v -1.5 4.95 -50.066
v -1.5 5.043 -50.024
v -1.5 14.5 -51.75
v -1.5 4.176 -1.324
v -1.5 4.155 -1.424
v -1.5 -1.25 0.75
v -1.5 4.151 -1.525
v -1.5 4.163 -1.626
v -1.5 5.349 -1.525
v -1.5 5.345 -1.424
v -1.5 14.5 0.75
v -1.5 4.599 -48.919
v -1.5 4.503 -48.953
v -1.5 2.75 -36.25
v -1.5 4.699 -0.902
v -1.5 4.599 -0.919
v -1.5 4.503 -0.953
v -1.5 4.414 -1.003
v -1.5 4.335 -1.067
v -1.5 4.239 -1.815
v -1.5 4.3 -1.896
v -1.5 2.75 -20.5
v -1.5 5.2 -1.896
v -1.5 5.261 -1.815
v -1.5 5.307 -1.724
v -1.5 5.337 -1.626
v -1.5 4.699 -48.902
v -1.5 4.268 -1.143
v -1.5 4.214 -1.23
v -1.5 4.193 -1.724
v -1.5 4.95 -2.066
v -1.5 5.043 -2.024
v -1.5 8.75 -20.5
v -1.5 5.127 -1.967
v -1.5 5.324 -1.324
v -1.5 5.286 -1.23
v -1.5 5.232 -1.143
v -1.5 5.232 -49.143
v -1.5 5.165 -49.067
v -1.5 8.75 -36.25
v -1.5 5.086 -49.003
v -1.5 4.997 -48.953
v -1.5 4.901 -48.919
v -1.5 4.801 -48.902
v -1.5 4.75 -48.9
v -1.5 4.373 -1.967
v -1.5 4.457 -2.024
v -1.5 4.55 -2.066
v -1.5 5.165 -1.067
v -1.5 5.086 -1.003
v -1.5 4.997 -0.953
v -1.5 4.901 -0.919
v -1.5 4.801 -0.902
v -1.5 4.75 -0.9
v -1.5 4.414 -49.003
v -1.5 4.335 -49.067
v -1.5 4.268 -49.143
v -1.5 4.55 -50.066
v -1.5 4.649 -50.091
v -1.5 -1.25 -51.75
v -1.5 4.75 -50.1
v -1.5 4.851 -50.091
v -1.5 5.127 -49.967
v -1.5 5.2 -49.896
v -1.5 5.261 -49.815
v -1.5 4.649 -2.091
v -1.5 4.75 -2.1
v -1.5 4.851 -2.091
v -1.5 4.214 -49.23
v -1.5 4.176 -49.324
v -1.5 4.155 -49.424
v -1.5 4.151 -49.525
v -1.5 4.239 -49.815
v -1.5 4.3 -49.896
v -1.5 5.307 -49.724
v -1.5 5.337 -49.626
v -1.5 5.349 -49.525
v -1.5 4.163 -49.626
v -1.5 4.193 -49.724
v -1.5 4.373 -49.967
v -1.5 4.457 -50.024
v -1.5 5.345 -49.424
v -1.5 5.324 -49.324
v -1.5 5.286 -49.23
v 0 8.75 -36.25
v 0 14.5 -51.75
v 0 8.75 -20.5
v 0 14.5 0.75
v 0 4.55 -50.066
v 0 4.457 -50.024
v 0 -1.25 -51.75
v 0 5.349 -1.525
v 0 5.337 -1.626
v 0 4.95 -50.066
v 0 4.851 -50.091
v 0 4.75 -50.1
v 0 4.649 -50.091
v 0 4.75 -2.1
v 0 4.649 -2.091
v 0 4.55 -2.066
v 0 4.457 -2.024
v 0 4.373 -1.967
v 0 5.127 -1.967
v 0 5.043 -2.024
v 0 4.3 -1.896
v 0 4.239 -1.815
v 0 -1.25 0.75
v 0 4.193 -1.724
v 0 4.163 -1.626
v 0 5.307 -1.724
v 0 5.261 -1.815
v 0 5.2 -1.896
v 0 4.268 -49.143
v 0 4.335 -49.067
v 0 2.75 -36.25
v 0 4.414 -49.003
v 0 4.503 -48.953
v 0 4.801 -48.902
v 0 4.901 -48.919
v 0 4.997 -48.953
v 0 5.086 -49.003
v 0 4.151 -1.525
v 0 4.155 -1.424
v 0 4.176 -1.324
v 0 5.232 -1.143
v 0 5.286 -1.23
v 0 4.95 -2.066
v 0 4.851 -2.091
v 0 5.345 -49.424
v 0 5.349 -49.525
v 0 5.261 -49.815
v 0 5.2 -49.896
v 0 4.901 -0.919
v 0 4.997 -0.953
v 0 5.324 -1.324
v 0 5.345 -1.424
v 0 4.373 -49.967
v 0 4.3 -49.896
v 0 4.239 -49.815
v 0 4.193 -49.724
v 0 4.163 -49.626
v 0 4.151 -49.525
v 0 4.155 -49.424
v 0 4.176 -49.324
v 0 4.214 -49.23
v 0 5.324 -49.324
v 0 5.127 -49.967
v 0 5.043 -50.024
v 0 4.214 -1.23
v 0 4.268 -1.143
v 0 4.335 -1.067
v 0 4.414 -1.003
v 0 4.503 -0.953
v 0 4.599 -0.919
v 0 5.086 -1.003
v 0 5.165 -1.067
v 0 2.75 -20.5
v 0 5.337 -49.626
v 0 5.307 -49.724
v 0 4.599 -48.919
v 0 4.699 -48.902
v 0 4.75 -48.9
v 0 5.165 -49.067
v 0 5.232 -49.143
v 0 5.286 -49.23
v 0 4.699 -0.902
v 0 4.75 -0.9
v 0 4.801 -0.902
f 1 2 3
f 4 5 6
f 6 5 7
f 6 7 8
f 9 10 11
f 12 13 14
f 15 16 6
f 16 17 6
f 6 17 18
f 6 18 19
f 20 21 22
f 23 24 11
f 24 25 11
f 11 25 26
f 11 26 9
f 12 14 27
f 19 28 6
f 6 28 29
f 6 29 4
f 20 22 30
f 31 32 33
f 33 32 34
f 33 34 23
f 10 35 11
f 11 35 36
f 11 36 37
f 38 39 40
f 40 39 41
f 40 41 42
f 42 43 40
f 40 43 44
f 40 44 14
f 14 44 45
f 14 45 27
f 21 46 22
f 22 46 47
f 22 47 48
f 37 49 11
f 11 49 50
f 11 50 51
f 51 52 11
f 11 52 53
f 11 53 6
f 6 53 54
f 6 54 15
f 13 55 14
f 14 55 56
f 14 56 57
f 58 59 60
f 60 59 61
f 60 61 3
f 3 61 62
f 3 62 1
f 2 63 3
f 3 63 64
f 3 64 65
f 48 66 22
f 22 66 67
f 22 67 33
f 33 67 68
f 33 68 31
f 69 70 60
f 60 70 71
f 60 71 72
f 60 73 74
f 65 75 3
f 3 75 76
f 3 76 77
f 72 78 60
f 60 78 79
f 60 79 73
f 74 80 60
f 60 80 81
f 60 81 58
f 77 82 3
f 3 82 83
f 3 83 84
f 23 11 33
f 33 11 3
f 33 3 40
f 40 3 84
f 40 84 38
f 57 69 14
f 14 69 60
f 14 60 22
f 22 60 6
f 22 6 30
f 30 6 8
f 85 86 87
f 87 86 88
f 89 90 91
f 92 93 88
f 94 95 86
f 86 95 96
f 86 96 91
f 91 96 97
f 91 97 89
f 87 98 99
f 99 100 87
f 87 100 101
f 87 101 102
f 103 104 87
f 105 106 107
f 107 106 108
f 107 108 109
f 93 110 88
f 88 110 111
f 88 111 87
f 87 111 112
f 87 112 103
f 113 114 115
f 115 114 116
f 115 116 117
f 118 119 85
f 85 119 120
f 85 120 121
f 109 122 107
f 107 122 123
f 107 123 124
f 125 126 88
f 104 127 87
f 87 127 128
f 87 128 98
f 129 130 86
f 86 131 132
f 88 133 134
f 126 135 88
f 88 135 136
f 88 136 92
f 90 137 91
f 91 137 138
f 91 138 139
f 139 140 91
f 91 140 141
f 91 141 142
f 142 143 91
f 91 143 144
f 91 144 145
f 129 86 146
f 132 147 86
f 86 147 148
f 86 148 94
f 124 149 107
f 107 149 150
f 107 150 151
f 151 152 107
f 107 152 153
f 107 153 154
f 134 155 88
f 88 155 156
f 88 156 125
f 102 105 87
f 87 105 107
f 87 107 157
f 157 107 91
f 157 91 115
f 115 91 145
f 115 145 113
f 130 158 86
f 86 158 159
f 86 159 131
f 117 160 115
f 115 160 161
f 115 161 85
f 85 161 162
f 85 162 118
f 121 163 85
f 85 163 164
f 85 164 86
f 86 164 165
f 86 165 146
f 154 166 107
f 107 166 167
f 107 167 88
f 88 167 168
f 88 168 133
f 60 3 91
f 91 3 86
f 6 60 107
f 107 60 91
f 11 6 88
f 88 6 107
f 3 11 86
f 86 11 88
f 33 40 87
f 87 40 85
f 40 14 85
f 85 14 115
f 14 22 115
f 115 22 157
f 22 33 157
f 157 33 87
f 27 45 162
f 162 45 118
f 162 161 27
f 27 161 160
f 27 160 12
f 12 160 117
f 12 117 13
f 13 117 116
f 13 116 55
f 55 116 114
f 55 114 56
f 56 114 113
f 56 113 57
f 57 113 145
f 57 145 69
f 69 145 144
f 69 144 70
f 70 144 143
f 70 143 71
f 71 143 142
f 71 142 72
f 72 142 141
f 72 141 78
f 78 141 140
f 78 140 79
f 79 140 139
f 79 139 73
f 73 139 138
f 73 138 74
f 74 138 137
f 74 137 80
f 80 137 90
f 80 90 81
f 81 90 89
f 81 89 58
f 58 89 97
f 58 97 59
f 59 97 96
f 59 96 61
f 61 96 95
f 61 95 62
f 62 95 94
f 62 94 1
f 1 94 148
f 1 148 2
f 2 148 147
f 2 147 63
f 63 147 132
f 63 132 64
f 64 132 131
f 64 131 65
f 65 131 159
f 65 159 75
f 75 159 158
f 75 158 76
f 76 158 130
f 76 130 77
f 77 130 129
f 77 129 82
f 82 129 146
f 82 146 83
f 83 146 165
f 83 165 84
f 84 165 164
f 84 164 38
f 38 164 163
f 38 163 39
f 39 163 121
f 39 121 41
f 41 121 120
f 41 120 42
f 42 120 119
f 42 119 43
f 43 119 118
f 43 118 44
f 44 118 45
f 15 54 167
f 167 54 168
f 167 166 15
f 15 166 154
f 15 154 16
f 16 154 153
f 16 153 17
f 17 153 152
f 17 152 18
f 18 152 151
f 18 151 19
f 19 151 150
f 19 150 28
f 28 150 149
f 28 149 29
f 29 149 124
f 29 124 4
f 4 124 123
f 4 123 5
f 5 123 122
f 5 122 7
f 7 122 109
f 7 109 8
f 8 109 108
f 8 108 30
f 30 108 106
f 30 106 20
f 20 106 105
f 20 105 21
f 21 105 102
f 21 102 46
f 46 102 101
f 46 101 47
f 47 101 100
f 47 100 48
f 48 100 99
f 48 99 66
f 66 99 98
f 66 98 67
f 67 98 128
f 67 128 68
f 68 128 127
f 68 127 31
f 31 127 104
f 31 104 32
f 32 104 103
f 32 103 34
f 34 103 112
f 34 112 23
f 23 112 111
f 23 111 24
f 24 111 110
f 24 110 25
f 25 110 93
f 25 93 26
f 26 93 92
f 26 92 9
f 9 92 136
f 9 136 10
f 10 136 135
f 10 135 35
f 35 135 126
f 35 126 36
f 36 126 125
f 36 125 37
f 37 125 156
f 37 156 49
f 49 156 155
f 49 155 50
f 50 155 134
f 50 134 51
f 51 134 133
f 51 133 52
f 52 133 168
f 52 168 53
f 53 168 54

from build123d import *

# Parameters (mm, degrees)
SKETCH8_W            = 52.5
SKETCH8_H            = 15.75
SKETCH8_R            = 0.6
SKETCH8_W_2          = 15.75
SKETCH8_H_2          = 6
BOSS_EXTRUDE13_DEPTH = 1.5


with BuildPart() as part:
    # Sketch8 → Boss-Extrude13 (new body)
    with BuildSketch(Plane.ZY):
        with Locations((-25.5, 6.625)):
            Rectangle(SKETCH8_W, SKETCH8_H)
        with Locations((-49.5, 4.75)):
            Circle(SKETCH8_R, mode=Mode.SUBTRACT)
        with Locations((-1.5, 4.75)):
            Circle(SKETCH8_R, mode=Mode.SUBTRACT)
        with Locations((-28.375, 5.75)):
            Rectangle(SKETCH8_W_2, SKETCH8_H_2, mode=Mode.SUBTRACT)
    extrude(amount=BOSS_EXTRUDE13_DEPTH)


solid = part.part
